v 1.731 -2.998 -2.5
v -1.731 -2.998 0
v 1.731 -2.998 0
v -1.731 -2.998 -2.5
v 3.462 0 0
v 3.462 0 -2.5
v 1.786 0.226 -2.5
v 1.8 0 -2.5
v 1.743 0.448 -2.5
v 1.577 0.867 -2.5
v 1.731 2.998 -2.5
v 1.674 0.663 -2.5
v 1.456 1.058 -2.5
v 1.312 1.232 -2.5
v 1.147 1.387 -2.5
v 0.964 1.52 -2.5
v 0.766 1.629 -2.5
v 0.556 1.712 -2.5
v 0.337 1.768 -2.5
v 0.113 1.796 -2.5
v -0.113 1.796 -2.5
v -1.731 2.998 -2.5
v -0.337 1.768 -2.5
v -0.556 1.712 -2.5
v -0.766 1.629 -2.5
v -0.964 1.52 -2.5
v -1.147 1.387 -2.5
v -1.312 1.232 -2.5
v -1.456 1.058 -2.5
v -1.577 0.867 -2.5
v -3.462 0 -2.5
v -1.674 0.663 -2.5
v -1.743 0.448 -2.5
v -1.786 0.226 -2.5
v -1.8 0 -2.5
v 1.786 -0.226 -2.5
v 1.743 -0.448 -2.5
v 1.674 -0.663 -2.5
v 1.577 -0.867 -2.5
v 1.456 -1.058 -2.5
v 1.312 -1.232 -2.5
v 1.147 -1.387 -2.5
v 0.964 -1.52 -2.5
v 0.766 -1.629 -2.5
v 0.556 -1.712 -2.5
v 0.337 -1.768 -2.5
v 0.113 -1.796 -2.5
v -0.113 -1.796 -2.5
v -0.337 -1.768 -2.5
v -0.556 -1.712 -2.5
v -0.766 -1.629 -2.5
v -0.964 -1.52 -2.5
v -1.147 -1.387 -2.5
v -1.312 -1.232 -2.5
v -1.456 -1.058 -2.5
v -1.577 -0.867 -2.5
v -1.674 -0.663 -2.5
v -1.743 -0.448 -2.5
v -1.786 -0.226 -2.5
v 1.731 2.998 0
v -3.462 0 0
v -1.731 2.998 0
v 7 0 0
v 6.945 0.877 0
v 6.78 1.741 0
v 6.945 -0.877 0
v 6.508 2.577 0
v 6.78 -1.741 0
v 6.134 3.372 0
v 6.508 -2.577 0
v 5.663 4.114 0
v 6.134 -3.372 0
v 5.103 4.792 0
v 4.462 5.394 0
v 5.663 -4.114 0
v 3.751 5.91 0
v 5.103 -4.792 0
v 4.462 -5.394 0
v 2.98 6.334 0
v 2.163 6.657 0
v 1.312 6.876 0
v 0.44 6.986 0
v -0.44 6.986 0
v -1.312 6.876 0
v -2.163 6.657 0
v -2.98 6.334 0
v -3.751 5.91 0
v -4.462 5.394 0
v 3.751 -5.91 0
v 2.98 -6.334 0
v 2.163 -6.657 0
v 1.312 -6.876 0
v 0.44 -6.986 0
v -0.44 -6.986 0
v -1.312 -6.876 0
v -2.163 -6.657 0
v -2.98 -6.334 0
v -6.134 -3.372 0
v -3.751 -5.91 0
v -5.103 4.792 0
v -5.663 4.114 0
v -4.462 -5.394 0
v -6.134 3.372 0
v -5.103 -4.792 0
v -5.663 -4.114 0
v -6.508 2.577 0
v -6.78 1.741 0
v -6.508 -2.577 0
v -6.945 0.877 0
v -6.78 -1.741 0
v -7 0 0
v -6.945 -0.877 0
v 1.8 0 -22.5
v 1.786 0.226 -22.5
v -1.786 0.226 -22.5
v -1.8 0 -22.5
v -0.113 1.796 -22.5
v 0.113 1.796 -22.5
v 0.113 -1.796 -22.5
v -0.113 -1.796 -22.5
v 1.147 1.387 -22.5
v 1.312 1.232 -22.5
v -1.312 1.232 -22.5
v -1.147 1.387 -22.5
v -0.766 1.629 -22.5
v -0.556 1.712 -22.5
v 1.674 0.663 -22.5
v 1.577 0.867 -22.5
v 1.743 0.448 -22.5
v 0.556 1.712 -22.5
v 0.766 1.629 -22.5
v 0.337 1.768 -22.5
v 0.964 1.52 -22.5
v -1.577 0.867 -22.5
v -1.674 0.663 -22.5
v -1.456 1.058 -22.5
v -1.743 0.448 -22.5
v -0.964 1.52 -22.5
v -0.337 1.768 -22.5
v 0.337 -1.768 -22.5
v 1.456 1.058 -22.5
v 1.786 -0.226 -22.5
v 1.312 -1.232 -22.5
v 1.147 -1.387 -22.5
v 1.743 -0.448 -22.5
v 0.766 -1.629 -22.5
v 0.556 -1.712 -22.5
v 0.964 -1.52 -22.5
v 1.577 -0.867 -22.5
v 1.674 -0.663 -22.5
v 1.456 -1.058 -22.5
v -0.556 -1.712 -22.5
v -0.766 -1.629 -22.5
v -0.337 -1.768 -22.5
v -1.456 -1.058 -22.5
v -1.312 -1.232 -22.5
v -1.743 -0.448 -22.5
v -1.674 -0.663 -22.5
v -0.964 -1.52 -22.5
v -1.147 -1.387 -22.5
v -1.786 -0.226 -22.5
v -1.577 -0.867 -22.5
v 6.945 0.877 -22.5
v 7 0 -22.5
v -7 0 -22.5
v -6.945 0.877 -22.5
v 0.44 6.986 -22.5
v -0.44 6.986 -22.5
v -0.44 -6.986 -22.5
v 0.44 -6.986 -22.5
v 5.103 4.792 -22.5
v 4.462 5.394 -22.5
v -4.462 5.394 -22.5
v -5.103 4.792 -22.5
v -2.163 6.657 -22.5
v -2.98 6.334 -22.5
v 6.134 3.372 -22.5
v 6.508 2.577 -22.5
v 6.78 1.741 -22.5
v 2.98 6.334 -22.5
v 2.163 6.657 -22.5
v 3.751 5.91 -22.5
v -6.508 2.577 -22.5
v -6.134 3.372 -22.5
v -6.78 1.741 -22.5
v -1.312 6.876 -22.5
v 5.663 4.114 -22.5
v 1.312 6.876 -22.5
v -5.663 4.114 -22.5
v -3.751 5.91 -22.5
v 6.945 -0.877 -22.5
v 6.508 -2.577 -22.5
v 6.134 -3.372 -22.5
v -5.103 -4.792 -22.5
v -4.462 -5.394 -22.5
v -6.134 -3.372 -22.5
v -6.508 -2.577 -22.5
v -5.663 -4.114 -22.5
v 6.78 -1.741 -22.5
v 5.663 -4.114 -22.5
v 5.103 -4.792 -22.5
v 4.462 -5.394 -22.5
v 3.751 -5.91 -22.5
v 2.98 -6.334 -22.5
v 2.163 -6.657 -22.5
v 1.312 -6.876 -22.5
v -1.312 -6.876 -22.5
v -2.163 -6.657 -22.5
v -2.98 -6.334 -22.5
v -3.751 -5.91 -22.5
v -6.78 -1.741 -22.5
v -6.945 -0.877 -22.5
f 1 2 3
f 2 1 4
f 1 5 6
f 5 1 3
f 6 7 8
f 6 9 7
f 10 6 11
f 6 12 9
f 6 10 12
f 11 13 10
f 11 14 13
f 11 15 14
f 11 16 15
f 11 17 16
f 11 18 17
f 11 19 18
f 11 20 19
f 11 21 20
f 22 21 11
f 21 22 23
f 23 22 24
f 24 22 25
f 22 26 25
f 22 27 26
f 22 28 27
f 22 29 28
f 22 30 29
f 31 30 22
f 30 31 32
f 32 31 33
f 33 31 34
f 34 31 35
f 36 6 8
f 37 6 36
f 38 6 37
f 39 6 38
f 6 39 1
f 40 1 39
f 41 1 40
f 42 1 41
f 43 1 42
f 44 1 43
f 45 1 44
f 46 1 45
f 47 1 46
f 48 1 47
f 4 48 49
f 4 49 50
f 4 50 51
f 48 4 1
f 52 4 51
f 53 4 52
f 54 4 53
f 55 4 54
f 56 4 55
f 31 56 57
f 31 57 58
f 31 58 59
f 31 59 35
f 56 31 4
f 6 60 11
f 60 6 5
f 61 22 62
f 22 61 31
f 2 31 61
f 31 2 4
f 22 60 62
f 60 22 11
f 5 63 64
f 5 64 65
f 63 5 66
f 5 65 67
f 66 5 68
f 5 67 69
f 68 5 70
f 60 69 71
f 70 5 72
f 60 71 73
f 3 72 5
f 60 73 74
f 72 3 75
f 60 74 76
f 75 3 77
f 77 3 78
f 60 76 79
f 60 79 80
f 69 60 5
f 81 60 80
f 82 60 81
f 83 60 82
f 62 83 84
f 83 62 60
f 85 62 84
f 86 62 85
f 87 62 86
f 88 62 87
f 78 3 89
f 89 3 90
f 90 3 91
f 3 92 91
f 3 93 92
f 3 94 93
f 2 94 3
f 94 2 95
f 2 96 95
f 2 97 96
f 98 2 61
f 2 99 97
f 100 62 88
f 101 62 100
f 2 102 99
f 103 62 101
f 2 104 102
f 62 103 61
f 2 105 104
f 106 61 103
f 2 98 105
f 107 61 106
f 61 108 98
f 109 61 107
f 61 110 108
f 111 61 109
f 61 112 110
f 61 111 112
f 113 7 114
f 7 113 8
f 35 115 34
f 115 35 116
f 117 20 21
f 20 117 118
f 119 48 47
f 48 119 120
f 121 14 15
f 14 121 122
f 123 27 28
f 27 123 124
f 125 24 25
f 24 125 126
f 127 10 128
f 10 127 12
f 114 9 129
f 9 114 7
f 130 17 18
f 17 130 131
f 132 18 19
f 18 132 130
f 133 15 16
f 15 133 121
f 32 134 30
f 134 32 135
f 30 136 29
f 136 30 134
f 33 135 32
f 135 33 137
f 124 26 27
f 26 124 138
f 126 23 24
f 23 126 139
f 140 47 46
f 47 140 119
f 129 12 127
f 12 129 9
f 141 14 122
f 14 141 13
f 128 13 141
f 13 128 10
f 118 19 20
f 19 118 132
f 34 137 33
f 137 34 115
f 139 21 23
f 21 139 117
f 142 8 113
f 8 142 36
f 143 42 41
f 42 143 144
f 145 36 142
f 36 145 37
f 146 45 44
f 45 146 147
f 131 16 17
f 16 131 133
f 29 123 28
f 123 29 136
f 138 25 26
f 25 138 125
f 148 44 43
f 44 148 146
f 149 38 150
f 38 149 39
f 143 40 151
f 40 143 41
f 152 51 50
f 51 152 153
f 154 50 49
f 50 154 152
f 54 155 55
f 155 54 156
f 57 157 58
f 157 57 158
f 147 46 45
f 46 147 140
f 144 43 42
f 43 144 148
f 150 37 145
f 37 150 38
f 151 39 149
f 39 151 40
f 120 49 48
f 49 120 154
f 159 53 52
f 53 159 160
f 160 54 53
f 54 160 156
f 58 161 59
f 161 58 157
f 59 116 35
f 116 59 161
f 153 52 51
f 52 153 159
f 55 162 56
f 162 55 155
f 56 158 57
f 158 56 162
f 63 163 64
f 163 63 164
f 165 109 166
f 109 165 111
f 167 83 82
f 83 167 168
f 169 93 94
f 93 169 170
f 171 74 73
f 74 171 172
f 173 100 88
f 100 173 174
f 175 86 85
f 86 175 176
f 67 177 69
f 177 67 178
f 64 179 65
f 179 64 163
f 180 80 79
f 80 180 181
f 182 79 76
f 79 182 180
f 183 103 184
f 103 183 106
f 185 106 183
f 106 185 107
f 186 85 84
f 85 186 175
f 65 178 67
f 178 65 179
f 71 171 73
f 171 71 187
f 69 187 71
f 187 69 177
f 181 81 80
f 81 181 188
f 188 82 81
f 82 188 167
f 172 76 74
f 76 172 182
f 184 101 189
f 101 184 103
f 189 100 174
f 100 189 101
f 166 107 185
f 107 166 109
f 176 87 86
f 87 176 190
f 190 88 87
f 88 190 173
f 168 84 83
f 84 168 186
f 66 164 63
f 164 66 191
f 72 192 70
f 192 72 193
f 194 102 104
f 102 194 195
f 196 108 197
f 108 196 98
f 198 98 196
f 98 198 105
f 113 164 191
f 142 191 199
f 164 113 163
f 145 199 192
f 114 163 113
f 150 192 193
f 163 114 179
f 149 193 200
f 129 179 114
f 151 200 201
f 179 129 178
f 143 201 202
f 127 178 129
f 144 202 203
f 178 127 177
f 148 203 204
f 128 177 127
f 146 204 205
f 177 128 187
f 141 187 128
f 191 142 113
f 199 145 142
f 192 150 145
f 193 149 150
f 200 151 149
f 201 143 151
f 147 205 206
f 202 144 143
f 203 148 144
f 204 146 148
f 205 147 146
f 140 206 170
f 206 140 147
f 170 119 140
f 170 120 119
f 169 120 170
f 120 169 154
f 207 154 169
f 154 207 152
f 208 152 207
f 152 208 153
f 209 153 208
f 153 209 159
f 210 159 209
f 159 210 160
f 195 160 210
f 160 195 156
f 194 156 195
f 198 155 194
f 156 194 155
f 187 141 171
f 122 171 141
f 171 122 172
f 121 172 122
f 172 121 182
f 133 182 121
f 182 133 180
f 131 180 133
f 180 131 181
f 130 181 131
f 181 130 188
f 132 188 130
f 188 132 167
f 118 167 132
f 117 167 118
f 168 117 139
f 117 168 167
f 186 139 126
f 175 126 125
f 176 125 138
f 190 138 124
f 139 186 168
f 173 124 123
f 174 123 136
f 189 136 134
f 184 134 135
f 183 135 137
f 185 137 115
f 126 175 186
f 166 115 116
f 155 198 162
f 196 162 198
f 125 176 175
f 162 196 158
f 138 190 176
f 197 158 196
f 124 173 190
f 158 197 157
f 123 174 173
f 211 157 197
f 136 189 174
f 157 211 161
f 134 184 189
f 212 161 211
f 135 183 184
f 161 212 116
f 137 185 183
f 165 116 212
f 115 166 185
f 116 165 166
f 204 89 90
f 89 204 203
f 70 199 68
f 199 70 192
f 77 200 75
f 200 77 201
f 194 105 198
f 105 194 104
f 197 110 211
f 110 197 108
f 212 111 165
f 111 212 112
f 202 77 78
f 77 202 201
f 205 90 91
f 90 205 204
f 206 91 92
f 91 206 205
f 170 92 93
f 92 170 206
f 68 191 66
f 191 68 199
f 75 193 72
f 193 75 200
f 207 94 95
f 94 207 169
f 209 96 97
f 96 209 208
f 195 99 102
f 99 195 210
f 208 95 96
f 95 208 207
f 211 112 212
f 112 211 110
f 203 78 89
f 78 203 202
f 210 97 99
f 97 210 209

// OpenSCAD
$fn = 50;

difference() {
	union() {
		translate(v = [0, 0, -22.5]) {
			cylinder(h = 22.5, r = 7.0);
		}
	}
	union() {
		translate(v = [0, 0, 0]) {
			rotate(a = [0, 0, 0]) {
				difference() {
					union() {
						translate(v = [0, 0, -2.5]) {
							linear_extrude(height = 2.5) {
								polygon(points = [[3.4619999999999997, 0.0], [1.7310000000000003, 2.9981799479017264], [-1.7309999999999992, 2.9981799479017264], [-3.4619999999999997, 4.2397272186481365e-16], [-1.7310000000000014, -2.998179947901726], [1.7309999999999977, -2.9981799479017277]]);
							}
						}
					}
					union();
				}
			}
		}
		#translate(v = [0, 0, -100.0]) {
			cylinder(h = 200, r = 1.8);
		}
	}
}
